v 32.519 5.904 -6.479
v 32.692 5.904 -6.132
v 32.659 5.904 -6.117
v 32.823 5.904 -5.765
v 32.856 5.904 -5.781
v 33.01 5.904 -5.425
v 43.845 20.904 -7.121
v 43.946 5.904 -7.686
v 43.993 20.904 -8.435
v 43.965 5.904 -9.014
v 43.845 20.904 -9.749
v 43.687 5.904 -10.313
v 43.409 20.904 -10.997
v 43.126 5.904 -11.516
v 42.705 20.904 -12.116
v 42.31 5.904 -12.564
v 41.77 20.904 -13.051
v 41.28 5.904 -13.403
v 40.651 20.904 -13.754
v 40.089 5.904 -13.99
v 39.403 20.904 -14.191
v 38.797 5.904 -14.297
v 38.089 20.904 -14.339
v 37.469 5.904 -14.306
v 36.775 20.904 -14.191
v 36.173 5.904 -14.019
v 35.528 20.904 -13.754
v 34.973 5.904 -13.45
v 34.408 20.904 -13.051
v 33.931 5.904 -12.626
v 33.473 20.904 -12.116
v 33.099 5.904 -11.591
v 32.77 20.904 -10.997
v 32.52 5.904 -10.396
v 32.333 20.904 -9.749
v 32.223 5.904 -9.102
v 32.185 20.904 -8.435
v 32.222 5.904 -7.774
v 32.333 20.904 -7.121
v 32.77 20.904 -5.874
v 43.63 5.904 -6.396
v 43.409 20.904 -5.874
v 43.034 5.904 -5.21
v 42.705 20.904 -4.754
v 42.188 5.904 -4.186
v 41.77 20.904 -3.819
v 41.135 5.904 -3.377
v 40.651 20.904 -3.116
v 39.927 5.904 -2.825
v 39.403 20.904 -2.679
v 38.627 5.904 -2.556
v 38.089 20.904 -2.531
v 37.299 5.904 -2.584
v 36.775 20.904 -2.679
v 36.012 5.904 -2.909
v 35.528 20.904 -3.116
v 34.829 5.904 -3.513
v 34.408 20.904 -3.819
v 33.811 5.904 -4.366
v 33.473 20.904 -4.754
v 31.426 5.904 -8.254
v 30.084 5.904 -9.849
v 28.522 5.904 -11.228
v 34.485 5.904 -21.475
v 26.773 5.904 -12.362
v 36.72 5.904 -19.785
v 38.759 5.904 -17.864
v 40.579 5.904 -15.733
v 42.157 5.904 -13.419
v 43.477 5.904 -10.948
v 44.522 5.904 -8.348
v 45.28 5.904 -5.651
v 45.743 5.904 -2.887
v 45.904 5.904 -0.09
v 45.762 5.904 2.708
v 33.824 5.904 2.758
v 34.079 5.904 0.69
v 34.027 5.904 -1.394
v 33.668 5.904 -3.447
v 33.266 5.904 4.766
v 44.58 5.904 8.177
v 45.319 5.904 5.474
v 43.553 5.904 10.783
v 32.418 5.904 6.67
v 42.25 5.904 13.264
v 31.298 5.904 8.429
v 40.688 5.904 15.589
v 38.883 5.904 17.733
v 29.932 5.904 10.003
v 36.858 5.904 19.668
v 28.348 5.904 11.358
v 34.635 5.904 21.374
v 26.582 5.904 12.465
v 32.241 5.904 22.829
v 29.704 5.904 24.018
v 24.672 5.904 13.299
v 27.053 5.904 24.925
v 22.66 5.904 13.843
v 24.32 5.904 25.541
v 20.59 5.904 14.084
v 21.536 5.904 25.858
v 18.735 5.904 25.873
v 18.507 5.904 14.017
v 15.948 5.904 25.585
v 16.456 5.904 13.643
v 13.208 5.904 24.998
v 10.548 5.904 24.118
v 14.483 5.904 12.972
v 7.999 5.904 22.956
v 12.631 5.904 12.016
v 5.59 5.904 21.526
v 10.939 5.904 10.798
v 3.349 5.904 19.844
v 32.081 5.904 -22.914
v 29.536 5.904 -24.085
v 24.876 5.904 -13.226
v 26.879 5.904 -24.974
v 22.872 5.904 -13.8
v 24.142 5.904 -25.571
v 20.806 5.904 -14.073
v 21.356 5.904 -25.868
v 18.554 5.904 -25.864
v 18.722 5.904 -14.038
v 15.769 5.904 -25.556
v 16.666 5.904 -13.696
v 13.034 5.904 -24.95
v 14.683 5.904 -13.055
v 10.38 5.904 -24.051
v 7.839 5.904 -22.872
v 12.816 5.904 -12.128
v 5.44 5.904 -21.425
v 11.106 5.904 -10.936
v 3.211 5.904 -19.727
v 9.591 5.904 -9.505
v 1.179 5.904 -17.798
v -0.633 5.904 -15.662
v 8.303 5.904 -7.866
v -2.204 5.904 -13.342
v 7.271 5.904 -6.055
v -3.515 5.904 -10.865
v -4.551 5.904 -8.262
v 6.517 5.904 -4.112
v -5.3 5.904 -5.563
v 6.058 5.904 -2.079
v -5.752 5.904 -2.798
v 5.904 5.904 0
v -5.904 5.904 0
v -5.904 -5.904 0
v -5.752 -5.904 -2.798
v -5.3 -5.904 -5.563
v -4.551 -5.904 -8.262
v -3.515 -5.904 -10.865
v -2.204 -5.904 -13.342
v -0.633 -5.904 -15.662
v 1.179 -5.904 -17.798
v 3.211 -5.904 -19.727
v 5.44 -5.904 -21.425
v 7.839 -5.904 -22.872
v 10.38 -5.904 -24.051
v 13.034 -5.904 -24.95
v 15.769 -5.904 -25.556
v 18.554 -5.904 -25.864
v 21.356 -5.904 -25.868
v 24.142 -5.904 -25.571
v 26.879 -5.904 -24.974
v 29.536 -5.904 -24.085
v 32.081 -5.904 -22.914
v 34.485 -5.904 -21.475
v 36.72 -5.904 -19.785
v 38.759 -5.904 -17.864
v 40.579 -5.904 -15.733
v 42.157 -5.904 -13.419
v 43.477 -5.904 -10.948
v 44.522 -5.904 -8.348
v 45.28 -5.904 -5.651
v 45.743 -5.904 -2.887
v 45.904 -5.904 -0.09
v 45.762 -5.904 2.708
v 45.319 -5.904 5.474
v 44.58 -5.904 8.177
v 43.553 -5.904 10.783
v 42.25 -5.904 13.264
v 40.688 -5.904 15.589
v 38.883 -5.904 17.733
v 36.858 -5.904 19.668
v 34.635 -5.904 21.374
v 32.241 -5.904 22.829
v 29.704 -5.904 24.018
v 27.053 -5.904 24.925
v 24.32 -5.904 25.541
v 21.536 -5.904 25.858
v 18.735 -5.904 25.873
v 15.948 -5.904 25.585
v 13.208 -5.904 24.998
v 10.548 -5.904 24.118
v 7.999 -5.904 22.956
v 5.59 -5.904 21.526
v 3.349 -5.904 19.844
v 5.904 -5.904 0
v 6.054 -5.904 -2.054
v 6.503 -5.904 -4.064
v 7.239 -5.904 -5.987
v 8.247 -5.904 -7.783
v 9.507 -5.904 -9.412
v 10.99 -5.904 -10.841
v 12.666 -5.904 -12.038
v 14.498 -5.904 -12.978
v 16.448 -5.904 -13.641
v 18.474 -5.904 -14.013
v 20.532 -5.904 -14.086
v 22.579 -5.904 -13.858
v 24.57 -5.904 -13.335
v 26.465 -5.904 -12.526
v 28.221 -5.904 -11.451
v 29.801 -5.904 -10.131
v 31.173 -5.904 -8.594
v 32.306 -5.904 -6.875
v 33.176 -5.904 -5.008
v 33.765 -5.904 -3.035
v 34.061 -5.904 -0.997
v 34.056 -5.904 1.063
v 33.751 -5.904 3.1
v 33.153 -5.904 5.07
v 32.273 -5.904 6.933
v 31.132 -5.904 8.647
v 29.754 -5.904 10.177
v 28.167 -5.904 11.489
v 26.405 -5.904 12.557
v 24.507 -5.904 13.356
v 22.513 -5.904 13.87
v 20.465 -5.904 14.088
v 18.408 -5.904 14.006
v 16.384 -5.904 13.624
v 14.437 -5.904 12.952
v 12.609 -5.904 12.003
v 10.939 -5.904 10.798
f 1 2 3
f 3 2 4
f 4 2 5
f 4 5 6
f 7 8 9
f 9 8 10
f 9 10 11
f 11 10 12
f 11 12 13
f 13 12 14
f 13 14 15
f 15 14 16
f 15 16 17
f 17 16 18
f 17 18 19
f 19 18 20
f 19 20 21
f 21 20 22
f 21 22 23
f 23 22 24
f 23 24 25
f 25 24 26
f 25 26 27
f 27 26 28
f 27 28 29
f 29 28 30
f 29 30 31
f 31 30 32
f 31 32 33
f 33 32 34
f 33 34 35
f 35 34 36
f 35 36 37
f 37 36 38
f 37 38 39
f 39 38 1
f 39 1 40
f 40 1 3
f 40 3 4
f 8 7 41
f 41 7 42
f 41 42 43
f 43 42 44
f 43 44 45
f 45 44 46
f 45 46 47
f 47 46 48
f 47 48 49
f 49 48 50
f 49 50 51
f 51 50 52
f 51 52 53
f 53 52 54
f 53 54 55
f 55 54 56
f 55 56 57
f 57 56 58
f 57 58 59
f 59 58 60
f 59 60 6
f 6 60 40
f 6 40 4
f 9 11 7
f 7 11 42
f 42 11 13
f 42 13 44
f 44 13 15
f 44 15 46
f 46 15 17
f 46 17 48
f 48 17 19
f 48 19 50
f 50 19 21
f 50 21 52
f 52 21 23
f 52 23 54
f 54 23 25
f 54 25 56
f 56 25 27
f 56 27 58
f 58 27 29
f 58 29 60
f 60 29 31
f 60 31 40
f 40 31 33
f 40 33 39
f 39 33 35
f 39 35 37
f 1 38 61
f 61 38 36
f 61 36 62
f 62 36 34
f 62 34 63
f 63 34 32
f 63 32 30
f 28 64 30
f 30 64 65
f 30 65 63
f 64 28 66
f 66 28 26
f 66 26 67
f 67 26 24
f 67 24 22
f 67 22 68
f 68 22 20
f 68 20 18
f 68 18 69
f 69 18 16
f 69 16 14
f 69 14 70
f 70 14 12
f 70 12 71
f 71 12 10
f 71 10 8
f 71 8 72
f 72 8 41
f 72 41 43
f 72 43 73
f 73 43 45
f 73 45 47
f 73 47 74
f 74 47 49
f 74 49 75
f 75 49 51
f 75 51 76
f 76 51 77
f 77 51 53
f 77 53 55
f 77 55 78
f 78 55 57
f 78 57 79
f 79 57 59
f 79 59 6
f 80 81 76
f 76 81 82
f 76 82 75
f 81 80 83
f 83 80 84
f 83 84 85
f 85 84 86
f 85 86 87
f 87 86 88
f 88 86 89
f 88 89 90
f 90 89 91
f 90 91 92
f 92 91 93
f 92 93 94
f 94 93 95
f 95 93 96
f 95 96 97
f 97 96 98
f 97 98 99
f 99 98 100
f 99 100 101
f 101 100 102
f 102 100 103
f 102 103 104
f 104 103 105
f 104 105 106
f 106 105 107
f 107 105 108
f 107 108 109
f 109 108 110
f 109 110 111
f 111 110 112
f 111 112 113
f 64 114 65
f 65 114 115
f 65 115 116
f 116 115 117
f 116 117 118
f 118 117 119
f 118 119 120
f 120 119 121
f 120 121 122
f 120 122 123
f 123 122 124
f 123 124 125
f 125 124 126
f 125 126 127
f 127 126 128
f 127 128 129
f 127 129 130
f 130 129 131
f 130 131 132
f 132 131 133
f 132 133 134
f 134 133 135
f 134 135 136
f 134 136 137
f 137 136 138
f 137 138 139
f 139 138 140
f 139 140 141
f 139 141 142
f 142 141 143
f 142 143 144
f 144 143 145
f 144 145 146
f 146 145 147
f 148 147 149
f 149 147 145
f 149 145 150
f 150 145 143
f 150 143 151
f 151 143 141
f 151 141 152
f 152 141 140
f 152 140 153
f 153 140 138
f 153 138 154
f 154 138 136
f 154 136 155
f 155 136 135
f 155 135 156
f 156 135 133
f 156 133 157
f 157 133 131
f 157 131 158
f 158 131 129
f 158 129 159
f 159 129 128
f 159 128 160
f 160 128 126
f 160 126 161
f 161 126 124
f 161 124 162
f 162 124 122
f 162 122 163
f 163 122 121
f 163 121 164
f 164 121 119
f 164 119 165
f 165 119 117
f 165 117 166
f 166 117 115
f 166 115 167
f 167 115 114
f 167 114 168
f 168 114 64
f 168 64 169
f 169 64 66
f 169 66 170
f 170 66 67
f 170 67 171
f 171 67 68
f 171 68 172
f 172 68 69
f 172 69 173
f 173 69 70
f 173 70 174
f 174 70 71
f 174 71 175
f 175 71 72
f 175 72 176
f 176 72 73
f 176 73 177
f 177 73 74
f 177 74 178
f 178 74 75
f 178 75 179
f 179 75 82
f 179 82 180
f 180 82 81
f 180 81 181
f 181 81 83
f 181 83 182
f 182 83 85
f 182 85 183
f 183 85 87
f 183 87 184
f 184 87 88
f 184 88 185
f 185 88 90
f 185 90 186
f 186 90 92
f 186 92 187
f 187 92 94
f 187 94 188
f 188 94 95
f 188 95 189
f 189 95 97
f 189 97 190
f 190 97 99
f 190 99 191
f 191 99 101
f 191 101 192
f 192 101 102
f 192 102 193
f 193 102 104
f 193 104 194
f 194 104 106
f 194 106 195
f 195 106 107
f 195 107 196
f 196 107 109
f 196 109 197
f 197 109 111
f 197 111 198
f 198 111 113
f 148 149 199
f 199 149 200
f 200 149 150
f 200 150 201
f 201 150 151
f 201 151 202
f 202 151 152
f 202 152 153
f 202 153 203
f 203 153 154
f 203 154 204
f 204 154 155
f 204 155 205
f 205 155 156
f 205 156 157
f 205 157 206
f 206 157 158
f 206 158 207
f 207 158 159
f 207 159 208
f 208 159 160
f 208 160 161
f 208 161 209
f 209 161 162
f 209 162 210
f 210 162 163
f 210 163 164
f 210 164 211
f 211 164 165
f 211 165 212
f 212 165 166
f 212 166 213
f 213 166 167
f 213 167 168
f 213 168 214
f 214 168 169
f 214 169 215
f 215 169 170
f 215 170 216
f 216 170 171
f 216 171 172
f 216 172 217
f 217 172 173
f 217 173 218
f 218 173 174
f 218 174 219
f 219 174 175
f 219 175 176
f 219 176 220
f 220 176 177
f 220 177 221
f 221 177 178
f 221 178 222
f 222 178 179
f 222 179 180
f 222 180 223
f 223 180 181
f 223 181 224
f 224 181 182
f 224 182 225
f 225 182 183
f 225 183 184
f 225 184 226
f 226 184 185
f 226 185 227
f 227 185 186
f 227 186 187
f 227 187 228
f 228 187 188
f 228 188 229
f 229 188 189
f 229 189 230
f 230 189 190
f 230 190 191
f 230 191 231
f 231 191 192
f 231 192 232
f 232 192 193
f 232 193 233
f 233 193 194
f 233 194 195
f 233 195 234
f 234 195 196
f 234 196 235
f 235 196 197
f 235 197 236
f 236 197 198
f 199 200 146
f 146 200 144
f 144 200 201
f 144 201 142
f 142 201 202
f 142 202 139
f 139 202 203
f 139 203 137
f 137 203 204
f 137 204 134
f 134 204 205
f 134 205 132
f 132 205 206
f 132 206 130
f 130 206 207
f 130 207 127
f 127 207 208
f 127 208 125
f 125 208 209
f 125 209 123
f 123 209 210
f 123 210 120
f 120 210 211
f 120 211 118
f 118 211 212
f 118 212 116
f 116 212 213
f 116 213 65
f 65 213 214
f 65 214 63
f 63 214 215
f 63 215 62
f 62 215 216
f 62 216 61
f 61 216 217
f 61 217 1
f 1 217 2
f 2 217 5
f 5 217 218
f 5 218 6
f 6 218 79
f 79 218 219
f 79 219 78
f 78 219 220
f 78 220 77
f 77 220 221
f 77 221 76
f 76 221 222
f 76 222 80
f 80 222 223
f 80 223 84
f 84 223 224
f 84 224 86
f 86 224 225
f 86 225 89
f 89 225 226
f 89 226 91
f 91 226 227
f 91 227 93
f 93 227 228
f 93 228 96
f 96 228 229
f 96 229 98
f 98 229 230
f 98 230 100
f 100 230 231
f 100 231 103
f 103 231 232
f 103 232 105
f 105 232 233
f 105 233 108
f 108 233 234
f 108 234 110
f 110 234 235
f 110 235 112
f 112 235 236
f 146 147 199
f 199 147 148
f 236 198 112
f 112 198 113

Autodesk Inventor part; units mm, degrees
ref_plane "YZ Plane" through (0, 0, 0) normal (1, 0, 0) x (0, 1, 0)
ref_plane "XZ Plane" through (0, 0, 0) normal (0, 1, 0) x (-1, 0, 0)
ref_plane "XY Plane" through (0, 0, 0) normal (0, 0, 1) x (1, 0, 0)
sketch "Sketch1" plane through (0, 0, 0) normal (0, 0, 1) x (1, 0, 0)
  line L0 (20, 10.9474) -> (20, -17.8312)
  line L1 (-6.604, 6.604) -> (-6.604, -6.604) projected
  line L2 (-6.604, -6.604) -> (6.604, -6.604) projected
  line L3 (6.604, 6.604) -> (-6.604, 6.604) projected
  line L4 (6.604, -6.604) -> (6.604, 6.604) projected
  line L5 (-5.904, -5.904) -> (5.904, -5.904)
  line L6 (5.904, -5.904) -> (5.904, 5.904)
  line L7 (5.904, 5.904) -> (-5.904, 5.904)
  line L8 (-5.904, 5.904) -> (-5.904, -5.904)
  point P0 (0, 0)
  dimension "d2" = 20
  dimension "d8" = 0.7
  dimension "d9" = 0.7
  dimension "d10" = 0.7
  dimension "d11" = 0.7
revolve "Revolution1" add sketch "Sketch1" angle 310 about axis through (20, 10.9474, 0) along (0, -1, 0) contours L8 L7 L6 L5
ref_plane "Work Plane1" through (0, 6.604, 2.5) normal (0, 1, 0) x (0, 0, 1)
sketch "Sketch4" plane through (-5.904, 5.904, 0) normal (0, 1, 0) x (1, 0, 0)
  line L0 (0, 0) -> (11.808, 0) projected
  line L1 (0, 0) -> (51.808, 0) construction
  arc A0 (9.2532, -19.8436) -> (0, 0) centre (25.904, 0) ccw projected
  line L2 (9.2532, -19.8436) -> (42.5548, 19.8436) construction
  line L3 (9.2532, -19.8436) -> (16.8433, -10.7982) construction
  line L4 (11.808, 0) -> (0, 0) construction
  circle A1 centre (43.9932, 8.4352) radius 5.904
  line L5 (43.9932, 8.4352) -> (42.5548, 19.8436)
  line L6 (43.9932, 8.4352) -> (51.808, 0)
  point P0 (5.904, 0)
  dimension "d15" = 11.808
  dimension "d16" = 8.4352
extrude "Extrusion3" add sketch "Sketch4" along normal blind 15 contours L6 L5 A1 | A1 L5 L6
equation "\"d9\" = d8"
equation "\"d10\" = d8"
equation "\"d11\" = d8"
properties part number "wash_ring"
